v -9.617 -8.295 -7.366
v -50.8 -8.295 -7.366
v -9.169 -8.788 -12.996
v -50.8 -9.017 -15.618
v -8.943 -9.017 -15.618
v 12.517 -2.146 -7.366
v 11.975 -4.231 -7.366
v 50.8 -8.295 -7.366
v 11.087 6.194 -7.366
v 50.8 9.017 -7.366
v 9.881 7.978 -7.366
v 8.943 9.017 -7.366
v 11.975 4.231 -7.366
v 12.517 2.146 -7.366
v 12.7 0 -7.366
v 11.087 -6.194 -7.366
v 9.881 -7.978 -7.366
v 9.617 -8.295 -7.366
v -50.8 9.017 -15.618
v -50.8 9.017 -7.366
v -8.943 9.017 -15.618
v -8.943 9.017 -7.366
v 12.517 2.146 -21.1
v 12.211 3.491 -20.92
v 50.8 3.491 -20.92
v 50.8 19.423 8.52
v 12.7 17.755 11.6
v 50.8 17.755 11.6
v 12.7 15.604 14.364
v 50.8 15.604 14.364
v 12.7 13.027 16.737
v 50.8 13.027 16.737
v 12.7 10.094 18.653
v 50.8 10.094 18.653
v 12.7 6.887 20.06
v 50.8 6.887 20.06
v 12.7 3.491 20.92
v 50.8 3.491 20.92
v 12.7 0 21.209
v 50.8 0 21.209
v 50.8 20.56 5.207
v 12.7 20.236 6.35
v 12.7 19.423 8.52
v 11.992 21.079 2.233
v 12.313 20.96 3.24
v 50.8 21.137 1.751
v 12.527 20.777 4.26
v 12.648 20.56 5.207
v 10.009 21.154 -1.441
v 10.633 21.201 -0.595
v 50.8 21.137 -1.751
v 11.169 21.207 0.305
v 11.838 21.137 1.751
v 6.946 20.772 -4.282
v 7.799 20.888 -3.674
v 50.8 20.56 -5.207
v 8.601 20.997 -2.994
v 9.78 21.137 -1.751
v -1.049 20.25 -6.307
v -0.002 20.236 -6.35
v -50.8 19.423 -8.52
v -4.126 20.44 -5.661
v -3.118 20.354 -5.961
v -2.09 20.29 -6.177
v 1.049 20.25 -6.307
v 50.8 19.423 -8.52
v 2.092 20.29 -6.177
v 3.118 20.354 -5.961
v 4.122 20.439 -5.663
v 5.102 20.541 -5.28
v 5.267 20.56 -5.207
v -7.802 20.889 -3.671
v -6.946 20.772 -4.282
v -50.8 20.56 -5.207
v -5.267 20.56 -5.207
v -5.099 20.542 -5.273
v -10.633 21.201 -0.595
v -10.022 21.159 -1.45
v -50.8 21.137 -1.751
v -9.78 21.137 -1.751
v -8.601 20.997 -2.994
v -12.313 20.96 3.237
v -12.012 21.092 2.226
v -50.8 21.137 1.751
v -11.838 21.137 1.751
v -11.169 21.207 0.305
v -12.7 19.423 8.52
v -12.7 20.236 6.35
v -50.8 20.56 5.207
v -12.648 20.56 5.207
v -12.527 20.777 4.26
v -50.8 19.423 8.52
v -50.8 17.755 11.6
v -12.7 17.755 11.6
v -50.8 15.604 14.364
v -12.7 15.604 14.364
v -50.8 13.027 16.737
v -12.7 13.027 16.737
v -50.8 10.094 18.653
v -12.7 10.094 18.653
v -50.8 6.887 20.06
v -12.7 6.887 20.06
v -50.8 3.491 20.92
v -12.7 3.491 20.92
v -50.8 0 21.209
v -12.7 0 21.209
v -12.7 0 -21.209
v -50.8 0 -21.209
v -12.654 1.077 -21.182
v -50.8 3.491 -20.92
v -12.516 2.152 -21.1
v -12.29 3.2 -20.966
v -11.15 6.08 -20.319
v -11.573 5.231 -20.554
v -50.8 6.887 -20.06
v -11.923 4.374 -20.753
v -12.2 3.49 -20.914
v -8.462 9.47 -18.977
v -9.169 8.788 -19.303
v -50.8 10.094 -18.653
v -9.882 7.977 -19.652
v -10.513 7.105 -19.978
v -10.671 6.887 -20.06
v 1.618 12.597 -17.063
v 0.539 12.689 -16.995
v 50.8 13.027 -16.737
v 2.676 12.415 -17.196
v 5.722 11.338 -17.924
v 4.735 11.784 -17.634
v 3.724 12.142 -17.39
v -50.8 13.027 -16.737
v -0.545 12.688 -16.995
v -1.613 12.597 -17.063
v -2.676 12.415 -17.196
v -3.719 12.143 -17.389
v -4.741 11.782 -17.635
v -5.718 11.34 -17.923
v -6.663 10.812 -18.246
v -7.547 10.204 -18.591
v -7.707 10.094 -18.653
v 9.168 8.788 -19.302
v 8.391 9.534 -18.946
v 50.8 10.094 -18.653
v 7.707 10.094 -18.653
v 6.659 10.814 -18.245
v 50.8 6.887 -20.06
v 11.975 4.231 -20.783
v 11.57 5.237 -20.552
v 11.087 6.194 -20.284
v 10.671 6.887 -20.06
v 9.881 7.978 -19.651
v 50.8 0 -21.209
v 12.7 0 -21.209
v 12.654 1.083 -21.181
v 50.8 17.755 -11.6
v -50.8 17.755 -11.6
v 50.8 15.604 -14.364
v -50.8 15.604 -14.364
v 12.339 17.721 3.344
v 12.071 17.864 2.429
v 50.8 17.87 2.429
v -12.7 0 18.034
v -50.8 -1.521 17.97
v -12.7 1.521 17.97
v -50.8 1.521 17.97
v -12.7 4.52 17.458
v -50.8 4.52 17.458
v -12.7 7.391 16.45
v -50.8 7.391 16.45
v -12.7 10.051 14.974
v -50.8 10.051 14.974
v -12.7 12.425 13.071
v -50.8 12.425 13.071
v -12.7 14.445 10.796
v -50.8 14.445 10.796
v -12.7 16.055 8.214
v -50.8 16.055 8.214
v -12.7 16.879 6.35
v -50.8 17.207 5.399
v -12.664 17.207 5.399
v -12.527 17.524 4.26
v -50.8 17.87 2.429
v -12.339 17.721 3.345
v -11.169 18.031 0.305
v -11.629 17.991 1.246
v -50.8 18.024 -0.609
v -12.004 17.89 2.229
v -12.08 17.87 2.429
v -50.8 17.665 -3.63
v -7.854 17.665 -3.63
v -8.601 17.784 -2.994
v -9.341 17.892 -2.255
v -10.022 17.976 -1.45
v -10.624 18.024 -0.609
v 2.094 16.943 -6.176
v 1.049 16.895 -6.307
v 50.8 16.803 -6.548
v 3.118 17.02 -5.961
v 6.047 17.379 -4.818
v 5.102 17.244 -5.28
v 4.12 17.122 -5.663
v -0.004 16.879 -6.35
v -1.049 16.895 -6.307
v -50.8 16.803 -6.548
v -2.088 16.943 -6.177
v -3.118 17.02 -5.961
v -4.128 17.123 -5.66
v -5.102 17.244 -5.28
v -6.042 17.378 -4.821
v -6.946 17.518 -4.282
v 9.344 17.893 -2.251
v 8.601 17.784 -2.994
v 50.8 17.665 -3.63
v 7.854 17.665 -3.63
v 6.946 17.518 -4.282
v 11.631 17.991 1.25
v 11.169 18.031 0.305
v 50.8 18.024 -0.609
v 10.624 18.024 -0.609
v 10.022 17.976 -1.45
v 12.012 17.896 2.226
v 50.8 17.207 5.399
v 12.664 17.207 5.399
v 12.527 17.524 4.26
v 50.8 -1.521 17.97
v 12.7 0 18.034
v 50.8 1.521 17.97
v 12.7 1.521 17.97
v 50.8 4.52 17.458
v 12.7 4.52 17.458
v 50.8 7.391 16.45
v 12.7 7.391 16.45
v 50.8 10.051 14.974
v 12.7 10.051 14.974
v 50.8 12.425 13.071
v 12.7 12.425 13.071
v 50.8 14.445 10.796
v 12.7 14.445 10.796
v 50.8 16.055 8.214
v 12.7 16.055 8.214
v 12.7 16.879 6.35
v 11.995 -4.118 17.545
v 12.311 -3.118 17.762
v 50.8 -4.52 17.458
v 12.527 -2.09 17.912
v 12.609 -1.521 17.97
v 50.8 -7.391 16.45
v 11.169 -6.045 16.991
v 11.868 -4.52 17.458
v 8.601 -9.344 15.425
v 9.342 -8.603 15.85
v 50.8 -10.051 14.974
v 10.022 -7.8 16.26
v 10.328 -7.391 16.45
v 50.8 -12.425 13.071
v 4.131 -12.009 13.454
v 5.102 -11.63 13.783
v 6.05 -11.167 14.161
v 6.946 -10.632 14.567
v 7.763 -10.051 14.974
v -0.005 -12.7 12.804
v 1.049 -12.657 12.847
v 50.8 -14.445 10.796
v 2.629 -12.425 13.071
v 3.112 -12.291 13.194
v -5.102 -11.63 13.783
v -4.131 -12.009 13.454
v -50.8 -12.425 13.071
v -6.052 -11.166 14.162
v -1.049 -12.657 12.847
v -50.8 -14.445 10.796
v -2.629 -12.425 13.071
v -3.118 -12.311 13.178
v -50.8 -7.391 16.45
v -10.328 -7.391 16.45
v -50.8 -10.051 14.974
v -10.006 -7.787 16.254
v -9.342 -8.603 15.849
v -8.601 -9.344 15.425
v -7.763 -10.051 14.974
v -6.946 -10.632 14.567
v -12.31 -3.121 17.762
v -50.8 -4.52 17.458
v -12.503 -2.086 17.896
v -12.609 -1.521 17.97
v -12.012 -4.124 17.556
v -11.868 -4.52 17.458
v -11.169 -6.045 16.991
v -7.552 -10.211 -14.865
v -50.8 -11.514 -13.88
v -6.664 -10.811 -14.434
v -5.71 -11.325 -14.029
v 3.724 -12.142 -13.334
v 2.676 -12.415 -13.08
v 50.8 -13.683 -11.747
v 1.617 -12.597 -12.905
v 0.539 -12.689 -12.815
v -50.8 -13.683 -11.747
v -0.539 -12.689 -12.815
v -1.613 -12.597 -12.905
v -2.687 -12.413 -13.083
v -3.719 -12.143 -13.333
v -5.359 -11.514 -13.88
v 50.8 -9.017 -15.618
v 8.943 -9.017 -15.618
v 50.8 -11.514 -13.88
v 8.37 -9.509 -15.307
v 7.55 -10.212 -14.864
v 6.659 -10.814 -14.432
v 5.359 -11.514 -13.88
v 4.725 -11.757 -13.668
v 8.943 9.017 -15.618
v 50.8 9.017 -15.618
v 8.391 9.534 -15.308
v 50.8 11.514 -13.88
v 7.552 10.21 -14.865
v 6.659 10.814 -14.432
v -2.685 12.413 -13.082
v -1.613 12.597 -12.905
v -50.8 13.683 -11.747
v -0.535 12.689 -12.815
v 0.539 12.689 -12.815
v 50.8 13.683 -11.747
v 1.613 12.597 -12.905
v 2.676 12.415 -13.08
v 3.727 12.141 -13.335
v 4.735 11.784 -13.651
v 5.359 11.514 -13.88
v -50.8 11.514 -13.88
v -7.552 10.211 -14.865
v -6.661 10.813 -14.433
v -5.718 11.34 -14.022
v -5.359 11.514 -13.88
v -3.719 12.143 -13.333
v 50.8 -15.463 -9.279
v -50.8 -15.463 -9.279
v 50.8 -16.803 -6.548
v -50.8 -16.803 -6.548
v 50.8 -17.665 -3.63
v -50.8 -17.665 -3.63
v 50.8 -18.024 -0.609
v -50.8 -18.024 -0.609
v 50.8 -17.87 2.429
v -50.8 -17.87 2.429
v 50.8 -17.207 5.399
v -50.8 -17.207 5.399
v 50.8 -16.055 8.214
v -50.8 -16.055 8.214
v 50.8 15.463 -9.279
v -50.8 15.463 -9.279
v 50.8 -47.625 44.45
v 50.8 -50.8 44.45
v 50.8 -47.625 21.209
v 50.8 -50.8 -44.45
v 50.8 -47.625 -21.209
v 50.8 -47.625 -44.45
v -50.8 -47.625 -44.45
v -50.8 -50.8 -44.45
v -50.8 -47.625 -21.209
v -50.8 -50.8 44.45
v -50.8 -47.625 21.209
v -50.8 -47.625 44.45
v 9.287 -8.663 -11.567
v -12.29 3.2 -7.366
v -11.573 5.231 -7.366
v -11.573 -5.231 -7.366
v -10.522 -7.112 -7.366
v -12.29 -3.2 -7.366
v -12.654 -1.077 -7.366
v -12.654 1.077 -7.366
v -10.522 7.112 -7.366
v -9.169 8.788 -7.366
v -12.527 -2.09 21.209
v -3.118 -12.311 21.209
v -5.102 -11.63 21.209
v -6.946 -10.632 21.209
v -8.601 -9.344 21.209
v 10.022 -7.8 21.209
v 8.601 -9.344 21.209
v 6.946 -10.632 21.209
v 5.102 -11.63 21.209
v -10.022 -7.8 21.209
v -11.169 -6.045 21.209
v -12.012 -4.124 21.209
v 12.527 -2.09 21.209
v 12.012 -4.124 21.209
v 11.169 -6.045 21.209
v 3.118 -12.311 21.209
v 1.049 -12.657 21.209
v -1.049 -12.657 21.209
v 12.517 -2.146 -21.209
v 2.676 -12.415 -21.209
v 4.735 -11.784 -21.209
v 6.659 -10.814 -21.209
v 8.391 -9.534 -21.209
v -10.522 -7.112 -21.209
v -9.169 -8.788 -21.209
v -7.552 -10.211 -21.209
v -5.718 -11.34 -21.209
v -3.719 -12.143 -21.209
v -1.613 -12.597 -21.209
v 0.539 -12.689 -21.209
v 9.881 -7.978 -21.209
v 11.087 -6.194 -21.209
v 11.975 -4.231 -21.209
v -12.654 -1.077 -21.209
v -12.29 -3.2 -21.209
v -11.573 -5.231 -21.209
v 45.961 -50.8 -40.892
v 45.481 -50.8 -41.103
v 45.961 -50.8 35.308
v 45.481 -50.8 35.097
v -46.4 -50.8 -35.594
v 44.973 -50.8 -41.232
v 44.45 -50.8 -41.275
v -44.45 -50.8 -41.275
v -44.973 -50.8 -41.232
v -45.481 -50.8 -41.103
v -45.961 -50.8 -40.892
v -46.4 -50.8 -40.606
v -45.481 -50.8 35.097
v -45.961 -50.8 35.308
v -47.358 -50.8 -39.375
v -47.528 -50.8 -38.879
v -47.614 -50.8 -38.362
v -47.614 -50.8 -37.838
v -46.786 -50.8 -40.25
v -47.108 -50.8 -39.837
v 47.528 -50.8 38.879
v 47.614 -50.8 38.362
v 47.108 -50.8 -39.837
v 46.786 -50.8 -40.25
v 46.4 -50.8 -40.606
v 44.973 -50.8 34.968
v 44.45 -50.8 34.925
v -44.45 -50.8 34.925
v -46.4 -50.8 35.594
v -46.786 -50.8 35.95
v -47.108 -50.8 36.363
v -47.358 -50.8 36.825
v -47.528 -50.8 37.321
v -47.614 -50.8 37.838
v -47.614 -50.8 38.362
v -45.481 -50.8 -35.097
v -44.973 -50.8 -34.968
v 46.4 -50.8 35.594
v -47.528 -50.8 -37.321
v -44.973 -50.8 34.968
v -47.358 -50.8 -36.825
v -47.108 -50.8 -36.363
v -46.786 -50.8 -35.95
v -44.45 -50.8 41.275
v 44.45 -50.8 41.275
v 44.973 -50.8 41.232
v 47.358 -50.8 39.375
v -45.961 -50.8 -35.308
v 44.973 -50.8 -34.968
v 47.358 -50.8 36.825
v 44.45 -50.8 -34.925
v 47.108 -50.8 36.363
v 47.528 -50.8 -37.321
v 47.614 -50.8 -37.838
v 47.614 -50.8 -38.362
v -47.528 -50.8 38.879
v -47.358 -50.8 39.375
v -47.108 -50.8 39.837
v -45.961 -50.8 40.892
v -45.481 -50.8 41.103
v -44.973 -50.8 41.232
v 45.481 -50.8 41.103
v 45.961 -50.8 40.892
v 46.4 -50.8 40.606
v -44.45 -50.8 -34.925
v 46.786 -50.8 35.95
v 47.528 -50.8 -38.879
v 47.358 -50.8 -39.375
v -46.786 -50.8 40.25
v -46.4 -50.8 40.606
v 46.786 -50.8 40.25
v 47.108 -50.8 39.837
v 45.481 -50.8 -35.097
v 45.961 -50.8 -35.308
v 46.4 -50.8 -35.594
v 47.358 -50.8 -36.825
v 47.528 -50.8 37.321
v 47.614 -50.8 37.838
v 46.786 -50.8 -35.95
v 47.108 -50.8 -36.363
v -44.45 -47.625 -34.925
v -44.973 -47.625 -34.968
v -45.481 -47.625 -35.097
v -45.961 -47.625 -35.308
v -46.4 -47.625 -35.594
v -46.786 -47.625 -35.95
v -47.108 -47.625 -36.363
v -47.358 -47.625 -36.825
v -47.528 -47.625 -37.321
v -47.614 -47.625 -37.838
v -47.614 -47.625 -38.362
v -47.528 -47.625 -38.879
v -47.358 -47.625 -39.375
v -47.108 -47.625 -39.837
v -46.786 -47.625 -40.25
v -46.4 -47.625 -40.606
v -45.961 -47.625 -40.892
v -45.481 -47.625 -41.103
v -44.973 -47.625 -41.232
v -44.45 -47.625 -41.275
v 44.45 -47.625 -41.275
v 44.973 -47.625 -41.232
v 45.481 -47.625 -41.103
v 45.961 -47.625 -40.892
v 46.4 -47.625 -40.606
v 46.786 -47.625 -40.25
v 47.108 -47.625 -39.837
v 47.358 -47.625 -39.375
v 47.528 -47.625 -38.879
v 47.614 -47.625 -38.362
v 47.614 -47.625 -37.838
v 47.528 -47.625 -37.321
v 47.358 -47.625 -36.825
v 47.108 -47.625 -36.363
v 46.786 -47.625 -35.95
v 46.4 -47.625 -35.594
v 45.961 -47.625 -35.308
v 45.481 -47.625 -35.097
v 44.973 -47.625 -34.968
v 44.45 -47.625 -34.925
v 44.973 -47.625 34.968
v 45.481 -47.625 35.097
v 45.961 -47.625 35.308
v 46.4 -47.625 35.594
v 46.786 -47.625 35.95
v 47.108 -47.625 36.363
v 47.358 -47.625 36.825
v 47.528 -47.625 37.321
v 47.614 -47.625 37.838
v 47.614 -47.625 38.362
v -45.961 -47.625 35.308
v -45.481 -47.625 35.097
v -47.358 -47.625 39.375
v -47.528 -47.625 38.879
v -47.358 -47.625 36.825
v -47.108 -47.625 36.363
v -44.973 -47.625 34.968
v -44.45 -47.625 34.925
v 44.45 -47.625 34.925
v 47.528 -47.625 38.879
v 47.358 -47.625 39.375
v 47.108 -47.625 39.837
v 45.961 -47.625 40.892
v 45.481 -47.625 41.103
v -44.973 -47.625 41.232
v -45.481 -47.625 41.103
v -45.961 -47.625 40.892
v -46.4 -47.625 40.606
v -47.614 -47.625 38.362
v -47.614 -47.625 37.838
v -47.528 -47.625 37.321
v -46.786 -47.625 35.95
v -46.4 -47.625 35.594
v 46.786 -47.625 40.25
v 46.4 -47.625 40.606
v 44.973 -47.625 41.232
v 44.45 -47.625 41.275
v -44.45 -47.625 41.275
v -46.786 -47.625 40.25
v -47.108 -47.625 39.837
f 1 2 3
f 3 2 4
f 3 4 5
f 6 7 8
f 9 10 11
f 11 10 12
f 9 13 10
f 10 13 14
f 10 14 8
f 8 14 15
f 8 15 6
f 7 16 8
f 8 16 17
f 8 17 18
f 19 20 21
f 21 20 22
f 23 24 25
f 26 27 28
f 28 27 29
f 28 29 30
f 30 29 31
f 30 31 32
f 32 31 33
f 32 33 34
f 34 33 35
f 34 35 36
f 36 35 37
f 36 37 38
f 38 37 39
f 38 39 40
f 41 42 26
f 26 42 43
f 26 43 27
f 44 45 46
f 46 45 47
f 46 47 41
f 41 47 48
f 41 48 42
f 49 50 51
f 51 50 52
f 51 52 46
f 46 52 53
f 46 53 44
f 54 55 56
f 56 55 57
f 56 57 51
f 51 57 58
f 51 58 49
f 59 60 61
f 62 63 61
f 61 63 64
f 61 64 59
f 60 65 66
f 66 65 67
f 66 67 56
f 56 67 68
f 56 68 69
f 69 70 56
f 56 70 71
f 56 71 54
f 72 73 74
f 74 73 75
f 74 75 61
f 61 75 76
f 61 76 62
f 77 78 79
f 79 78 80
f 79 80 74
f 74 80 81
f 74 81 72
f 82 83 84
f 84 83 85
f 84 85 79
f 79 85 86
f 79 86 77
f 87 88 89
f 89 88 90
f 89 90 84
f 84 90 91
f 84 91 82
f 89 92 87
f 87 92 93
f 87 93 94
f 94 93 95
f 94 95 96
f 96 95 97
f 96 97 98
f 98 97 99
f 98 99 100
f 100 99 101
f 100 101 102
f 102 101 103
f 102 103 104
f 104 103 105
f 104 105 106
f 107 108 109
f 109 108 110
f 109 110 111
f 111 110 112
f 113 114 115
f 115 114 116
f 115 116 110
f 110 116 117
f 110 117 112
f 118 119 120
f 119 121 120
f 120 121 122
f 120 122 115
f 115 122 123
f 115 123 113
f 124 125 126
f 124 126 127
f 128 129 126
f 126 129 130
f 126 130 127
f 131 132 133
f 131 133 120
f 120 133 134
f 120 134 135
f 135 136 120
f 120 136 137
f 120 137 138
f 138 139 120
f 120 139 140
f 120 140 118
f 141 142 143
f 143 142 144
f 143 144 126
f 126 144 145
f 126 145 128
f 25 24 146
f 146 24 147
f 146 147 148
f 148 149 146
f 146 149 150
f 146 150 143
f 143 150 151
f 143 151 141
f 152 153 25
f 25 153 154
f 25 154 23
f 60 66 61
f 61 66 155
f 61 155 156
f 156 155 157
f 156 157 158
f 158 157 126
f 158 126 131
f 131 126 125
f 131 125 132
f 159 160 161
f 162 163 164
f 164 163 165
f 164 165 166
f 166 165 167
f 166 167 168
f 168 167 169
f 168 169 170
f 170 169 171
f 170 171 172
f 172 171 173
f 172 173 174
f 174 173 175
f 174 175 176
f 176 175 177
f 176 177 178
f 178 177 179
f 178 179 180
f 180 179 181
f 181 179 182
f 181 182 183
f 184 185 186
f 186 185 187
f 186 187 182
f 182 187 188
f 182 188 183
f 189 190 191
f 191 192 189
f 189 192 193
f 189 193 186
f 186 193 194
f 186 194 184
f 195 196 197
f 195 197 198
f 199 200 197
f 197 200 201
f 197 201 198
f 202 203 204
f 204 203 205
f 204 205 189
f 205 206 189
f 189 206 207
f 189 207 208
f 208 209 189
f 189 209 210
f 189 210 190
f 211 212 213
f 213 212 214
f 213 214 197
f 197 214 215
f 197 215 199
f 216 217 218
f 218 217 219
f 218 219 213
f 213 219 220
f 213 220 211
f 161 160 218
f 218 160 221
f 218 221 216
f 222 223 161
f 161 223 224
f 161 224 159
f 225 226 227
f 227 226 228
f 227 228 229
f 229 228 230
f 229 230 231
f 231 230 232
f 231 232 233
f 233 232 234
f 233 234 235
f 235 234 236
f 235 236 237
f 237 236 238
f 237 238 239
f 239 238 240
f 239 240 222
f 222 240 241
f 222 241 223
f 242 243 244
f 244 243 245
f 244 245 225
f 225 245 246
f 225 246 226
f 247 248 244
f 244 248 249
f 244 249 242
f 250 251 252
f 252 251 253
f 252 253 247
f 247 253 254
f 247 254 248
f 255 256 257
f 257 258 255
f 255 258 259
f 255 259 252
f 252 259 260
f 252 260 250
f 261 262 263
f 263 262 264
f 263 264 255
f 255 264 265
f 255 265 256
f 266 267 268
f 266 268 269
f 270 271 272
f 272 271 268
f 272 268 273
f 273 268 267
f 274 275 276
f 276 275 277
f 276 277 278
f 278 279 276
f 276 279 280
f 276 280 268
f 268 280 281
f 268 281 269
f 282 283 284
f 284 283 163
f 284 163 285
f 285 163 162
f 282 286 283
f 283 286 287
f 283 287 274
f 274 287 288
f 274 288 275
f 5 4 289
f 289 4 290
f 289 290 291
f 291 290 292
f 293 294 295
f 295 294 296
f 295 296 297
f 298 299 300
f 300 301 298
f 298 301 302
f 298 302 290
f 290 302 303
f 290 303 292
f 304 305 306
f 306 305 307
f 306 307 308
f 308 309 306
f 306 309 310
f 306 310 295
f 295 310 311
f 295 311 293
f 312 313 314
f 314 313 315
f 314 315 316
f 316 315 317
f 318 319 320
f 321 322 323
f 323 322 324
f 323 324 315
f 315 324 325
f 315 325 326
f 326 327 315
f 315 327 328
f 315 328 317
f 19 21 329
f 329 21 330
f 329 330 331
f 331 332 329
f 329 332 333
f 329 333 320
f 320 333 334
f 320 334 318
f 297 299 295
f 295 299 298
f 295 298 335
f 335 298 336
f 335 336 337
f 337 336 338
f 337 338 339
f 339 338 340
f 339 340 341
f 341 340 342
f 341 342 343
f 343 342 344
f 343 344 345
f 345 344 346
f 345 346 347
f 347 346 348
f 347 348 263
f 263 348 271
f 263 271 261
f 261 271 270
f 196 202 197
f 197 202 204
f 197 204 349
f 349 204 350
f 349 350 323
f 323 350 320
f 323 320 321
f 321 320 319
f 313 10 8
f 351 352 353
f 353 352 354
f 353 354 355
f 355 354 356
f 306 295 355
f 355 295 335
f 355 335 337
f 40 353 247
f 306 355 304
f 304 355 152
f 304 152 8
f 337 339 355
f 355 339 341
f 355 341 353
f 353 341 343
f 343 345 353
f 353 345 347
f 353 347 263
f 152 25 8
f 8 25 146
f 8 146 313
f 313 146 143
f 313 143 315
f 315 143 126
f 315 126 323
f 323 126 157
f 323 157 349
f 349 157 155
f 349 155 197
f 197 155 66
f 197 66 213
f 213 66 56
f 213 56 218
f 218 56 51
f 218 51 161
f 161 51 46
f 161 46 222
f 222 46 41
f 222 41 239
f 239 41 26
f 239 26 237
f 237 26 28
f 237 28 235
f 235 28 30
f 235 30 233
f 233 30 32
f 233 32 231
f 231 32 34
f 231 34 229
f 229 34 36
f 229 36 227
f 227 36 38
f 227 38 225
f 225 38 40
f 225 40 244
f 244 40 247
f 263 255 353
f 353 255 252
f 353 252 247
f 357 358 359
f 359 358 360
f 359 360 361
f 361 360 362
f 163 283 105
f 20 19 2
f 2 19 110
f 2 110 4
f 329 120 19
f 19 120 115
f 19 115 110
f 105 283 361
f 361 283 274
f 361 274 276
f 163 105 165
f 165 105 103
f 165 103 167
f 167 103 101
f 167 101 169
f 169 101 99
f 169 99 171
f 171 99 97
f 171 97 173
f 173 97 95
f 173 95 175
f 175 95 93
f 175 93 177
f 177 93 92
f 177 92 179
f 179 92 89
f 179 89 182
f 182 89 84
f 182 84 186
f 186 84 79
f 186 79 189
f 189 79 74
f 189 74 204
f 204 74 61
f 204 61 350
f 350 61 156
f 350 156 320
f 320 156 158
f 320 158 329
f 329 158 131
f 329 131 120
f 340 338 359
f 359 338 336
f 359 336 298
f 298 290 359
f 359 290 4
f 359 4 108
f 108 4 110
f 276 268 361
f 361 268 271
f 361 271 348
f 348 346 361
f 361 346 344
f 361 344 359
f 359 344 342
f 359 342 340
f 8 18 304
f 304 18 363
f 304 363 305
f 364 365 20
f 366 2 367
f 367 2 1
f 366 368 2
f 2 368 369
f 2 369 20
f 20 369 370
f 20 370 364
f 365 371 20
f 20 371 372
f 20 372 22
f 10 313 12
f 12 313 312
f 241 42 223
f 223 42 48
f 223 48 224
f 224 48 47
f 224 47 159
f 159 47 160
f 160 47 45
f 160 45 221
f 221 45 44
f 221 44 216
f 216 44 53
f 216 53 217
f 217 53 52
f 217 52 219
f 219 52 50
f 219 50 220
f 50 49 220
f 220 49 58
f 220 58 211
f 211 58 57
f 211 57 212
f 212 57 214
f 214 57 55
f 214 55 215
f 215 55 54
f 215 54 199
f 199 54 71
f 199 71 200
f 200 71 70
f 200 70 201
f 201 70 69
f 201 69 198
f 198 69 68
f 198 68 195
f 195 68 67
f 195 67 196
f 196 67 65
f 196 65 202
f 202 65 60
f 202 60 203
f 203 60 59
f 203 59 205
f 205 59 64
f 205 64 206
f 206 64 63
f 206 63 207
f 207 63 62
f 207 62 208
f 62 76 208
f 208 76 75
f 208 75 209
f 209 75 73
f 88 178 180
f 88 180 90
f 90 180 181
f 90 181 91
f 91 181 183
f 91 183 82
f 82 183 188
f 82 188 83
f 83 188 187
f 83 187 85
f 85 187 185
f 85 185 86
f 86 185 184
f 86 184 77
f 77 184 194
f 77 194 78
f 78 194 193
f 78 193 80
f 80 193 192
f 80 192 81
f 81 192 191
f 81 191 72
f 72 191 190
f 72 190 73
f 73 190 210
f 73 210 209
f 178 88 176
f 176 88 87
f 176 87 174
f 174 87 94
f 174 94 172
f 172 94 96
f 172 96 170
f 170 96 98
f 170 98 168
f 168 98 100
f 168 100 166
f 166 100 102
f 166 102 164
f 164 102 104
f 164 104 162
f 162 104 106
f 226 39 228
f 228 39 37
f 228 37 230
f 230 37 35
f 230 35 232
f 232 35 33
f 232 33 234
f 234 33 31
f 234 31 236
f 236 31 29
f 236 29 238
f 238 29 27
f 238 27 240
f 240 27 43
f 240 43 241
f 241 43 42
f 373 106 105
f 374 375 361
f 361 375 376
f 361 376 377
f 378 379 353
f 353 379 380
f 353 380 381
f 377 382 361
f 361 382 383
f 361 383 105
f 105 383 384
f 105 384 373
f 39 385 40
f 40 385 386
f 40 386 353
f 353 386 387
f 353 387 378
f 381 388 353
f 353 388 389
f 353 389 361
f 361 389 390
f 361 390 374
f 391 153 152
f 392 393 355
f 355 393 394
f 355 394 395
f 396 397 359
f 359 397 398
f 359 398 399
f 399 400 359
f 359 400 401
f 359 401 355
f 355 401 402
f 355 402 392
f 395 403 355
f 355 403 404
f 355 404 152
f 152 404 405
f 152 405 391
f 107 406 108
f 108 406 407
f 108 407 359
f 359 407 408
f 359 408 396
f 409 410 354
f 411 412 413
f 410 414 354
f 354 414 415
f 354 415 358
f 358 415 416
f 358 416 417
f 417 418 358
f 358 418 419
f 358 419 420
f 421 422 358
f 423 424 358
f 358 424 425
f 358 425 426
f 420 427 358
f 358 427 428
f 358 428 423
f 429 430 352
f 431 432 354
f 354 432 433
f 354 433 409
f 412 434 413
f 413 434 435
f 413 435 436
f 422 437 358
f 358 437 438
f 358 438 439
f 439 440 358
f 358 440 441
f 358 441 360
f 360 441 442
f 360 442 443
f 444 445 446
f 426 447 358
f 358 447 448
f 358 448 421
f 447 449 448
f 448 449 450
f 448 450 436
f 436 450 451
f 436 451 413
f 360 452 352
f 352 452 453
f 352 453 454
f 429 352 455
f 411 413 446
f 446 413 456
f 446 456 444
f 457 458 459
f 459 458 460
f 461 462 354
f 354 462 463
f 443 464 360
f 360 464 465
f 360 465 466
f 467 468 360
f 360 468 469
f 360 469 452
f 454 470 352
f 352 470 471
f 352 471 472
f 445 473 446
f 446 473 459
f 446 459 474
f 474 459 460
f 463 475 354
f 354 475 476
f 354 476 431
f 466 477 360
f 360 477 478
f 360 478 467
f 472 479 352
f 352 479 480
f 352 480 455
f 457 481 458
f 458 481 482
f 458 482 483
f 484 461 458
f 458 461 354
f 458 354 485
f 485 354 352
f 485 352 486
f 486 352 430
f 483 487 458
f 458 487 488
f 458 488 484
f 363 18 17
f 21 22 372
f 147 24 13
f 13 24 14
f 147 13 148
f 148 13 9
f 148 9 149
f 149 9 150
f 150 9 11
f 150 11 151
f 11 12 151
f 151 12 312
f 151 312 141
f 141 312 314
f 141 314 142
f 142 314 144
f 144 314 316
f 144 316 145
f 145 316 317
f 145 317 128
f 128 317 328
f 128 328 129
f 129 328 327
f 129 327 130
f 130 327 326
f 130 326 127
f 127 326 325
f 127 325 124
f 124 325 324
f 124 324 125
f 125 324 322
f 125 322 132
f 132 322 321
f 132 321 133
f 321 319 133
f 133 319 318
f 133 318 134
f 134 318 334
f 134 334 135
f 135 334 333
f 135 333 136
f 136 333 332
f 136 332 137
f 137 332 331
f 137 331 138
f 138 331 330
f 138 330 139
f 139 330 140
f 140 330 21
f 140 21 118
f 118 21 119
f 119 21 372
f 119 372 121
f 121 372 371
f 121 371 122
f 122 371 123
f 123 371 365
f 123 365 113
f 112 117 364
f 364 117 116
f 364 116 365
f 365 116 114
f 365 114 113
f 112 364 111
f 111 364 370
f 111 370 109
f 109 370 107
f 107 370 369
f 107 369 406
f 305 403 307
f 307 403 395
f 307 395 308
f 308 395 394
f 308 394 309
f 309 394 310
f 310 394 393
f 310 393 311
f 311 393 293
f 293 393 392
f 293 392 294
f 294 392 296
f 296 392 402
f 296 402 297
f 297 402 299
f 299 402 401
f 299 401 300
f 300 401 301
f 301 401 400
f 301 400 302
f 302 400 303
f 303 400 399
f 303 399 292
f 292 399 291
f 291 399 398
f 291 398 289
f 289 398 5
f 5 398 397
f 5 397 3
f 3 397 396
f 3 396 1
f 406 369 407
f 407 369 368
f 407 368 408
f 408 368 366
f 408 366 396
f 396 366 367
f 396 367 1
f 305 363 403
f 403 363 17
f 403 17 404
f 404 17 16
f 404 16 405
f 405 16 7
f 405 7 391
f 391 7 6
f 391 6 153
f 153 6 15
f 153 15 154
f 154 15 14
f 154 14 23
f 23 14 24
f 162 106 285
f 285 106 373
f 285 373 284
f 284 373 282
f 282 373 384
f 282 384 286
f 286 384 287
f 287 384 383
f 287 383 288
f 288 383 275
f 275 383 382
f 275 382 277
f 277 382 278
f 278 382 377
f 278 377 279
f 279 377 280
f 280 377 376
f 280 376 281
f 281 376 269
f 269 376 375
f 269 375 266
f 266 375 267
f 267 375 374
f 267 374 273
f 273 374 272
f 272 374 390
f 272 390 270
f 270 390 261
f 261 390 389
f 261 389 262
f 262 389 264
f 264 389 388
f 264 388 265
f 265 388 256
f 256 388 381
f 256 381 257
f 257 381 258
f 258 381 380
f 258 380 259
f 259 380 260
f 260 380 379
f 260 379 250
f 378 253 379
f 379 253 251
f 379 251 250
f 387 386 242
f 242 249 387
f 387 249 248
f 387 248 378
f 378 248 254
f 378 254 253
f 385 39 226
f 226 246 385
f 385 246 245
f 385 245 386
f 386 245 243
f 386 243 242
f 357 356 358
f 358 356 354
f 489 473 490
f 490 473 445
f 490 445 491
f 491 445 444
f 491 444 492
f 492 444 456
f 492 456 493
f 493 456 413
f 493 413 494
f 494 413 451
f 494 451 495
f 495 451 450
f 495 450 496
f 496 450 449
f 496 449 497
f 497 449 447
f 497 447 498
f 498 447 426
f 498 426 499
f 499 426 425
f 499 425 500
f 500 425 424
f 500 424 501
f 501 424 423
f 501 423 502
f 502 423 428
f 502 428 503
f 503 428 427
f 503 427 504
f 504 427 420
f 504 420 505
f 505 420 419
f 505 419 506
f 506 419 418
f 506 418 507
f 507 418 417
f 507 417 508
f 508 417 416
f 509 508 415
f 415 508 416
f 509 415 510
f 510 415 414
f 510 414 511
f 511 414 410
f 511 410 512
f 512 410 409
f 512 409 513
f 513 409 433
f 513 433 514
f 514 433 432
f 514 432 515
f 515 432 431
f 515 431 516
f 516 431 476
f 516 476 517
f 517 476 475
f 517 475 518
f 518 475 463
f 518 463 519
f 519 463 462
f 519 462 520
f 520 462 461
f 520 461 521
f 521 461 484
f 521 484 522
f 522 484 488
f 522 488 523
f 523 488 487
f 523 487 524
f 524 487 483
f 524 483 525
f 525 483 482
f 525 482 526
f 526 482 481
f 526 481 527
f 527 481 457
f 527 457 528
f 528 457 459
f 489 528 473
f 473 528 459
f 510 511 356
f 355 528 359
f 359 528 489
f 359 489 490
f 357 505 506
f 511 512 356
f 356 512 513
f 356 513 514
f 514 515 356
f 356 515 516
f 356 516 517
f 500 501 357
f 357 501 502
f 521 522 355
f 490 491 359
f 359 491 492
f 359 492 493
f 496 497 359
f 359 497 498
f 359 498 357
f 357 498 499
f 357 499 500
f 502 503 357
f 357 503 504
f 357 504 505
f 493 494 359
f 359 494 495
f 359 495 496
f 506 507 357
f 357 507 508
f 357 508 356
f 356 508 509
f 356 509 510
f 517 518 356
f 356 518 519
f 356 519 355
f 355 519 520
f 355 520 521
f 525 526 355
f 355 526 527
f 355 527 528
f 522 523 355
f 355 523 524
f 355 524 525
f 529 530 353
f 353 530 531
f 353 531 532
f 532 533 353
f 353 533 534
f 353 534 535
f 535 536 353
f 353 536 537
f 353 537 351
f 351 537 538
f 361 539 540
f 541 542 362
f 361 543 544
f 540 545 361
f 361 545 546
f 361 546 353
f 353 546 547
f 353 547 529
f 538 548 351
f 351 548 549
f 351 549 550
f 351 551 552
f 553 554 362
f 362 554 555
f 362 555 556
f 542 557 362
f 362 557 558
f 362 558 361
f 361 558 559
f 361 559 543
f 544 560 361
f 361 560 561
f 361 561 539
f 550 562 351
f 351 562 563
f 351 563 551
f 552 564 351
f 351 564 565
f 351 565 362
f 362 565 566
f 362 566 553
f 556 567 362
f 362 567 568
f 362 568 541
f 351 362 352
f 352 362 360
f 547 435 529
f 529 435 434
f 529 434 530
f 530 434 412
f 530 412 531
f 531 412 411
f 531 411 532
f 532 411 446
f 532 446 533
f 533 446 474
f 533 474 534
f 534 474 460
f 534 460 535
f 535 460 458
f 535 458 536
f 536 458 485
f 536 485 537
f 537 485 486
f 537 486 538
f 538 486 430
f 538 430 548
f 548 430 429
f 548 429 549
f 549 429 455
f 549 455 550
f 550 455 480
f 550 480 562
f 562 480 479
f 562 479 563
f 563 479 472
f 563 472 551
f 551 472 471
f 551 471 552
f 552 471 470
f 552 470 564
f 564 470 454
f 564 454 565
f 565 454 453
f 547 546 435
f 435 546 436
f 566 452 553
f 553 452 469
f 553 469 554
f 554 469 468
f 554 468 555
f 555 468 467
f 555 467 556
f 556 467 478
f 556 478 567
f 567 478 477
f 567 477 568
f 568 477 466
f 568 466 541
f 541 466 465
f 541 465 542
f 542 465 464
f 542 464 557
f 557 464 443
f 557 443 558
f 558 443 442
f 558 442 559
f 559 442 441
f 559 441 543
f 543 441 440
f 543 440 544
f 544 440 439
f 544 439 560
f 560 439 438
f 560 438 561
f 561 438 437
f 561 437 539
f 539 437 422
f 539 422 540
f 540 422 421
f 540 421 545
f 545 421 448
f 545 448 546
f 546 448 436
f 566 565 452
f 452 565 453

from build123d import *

# Parameters (mm, degrees)
SKETCH1_R                = 21.209
BOSS_EXTRUDE1_DEPTH      = 50.8
CUT_EXTRUDE2_DEPTH       = 59.993926484
BOSS_EXTRUDE3_REACH      = 111.794
BOSS_EXTRUDE3_END_RADIUS = 21.209
BOSS_EXTRUDE3_START      = -50.8
SKETCH4_W                = 101.6
SKETCH4_H                = 42.418
CUT_EXTRUDE1_DEPTH       = 75.907287332
CUT_EXTRUDE1_DEPTH_BACK  = 75.907287332
SKETCH2_R                = 12.7
SKETCH5_W                = 101.6
SKETCH5_H                = 88.9
BOSS_EXTRUDE4_DEPTH      = 3.175


with BuildPart() as part:
    # Sketch1 → Boss-Extrude1 (new, symmetric)
    with BuildSketch(Plane(origin=(0, 0, 0), x_dir=(0, 0, -1), z_dir=(1, 0, 0))):
        Circle(SKETCH1_R)
        with BuildLine():
            Line((15.617902132, -9.017), (7.366, -8.295052111))
            Line((7.366, -8.295052111), (7.366, 9.017))
            Line((7.366, 9.017), (15.617902132, 9.017))
            ThreePointArc((15.617902132, 9.017), (-18.034, 0), (15.617902132, -9.017))
        make_face(mode=Mode.SUBTRACT)
    extrude(amount=BOSS_EXTRUDE1_DEPTH, both=True)

    # Sketch3 → Cut-Extrude2 (cut, through all)
    with BuildSketch(Plane(origin=(0, 0, 0), x_dir=(1, 0, 0), z_dir=(0, 1, 0))):
        with BuildLine():
            Line((-12.7, -6.35), (-12.7, -32.196981008))
            Line((-12.7, -32.196981008), (12.7, -32.196981008))
            Line((12.7, -32.196981008), (12.7, -6.35))
            ThreePointArc((12.7, -6.35), (0, 6.35), (-12.7, -6.35))
        make_face()
    extrude(amount=CUT_EXTRUDE2_DEPTH, mode=Mode.SUBTRACT)

    # Boss-Extrude3: up to this cylinder (the profile starts outside it)
    boss_extrude3_end = Plane(origin=(0, 0, 0), z_dir=(-1, 0, 0)) * Cylinder(BOSS_EXTRUDE3_END_RADIUS, 267.006, mode=Mode.PRIVATE)
    # Sketch4 → Boss-Extrude3 (add, up to the surface)
    with BuildSketch(Plane(origin=(0, 0, 0), x_dir=(1, 0, 0), z_dir=(0, 1, 0)).offset(BOSS_EXTRUDE3_START), mode=Mode.PRIVATE) as boss_extrude3_sk1:
        Rectangle(SKETCH4_W, SKETCH4_H)
    boss_extrude3_tool1 = extrude(boss_extrude3_sk1.sketch, amount=BOSS_EXTRUDE3_REACH, mode=Mode.PRIVATE) - boss_extrude3_end
    add(boss_extrude3_tool1.solids().sort_by_distance((0, -50.8, 0))[0])

    # Sketch2 → Cut-Extrude1 (cut, two sides: drawn at the far end of the back side and taken through both)
    with BuildSketch(Plane.XY.offset(-CUT_EXTRUDE1_DEPTH_BACK)):
        Circle(SKETCH2_R)
    extrude(amount=CUT_EXTRUDE1_DEPTH + CUT_EXTRUDE1_DEPTH_BACK, mode=Mode.SUBTRACT)

    # Sketch5 → Boss-Extrude4 (add)
    with BuildSketch(Plane.XZ.offset(50.8)):
        Rectangle(SKETCH5_W, SKETCH5_H)
        with BuildLine():
            Line((44.45, 41.275), (-44.45, 41.275))
            ThreePointArc((-44.45, 41.275), (-47.625, 38.1), (-44.45, 34.925))
            Line((-44.45, 34.925), (44.45, 34.925))
            ThreePointArc((44.45, 34.925), (47.625, 38.1), (44.45, 41.275))
        make_face(mode=Mode.SUBTRACT)
        with BuildLine():
            Line((44.45, -41.275), (-44.45, -41.275))
            ThreePointArc((-44.45, -41.275), (-47.625, -38.1), (-44.45, -34.925))
            Line((-44.45, -34.925), (44.45, -34.925))
            ThreePointArc((44.45, -34.925), (47.625, -38.1), (44.45, -41.275))
        make_face(mode=Mode.SUBTRACT)
    extrude(amount=-BOSS_EXTRUDE4_DEPTH)


solid = part.part
